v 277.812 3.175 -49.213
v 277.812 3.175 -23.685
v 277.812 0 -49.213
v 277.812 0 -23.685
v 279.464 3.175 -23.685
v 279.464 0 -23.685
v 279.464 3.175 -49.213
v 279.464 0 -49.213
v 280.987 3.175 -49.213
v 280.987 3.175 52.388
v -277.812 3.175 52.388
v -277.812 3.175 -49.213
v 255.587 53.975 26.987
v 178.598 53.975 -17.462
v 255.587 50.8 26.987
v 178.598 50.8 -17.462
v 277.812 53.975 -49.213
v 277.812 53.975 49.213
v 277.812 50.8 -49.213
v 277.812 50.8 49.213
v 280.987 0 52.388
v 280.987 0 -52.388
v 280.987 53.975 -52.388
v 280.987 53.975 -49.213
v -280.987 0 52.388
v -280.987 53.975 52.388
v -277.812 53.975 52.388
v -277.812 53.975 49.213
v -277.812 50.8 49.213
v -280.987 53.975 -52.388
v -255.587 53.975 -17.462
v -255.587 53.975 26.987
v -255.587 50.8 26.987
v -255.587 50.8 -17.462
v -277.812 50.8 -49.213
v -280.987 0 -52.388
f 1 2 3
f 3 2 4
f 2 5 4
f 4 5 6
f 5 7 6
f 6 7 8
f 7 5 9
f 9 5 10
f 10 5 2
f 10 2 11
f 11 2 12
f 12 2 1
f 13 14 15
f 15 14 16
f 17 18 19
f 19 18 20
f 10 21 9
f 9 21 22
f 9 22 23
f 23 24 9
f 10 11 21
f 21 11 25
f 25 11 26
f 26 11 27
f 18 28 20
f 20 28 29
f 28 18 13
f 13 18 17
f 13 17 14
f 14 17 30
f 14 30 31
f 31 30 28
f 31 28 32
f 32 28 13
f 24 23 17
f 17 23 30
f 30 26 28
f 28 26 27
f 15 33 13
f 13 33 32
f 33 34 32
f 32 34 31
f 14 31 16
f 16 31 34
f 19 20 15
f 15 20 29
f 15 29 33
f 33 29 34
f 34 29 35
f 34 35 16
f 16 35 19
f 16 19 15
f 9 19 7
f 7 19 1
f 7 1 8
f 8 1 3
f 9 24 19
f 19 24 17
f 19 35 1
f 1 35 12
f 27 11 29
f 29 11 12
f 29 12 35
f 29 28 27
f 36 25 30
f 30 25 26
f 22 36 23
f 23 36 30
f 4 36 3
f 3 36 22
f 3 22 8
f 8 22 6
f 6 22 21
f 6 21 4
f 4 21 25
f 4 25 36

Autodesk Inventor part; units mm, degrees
ref_plane "YZ Plane" through (0, 0, 0) normal (1, 0, 0) x (0, 1, 0)
ref_plane "XZ Plane" through (0, 0, 0) normal (0, 1, 0) x (-1, 0, 0)
ref_plane "XY Plane" through (0, 0, 0) normal (0, 0, 1) x (1, 0, 0)
sketch "Sketch1" plane through (0, 0, 0) normal (0, 1, 0) x (-1, 0, 0)
  line L0 (-280.9875, -52.3875) -> (-280.9875, 52.3875)
  line L1 (-280.9875, 52.3875) -> (280.9875, 52.3875)
  line L2 (280.9875, 52.3875) -> (280.9875, -52.3875)
  line L3 (280.9875, -52.3875) -> (-280.9875, -52.3875)
  line L4 (-280.9875, -52.3875) -> (280.9875, 52.3875) construction
  line L5 (-280.9875, 52.3875) -> (280.9875, -52.3875) construction
  line L6 (0, -52.3875) -> (0, -17.4625) construction
  line L7 (-277.8125, -49.2125) -> (277.8125, -49.2125)
  line L8 (277.8125, -49.2125) -> (277.8125, 49.2125)
  line L9 (277.8125, 49.2125) -> (-277.8125, 49.2125) construction
  line L10 (-277.8125, 49.2125) -> (-277.8125, -49.2125)
  line L11 (-277.8125, -49.2125) -> (277.8125, 49.2125) construction
  line L12 (277.8125, -49.2125) -> (-277.8125, 49.2125) construction
  line L13 (277.8125, 49.2125) -> (277.8125, 52.3875)
  line L14 (-277.8125, 49.2125) -> (-277.8125, 52.3875)
  point P0 (0, 0)
  dimension "d0" = 104.775
  dimension "d1" = 561.975
  dimension "d2" = 34.925
  dimension "d3" = 555.625
  dimension "d4" = 98.425
extrude "Extrusion1" add sketch "Sketch1" along normal blind 3.175 contours L1 L13 L8 L7 L10 L14
extrude "Extrusion2" add sketch "Sketch1" along normal blind 50.8 contours L0 L1 L14 L10 L7 L8 L13 L2 L3
sketch "Sketch2" plane through (0, 50.8, 0) normal (0, 1, 0) x (1, 0, 0)
  line L0 (-280.9875, -52.3875) -> (-277.8125, -52.3875) projected
  line L1 (-280.9875, -52.3875) -> (255.5875, -52.3875)
  line L2 (280.9875, -52.3875) -> (280.9875, -26.9875)
  line L3 (-280.9875, -26.9875) -> (-280.9875, -52.3875)
  line L4 (-280.9875, 52.3875) -> (-280.9875, -52.3875) projected
  line L5 (-280.9875, 52.3875) -> (255.5875, 52.3875)
  line L6 (280.9875, 52.3875) -> (280.9875, 17.4625)
  line L7 (-280.9875, 17.4625) -> (-280.9875, 52.3875)
  line L8 (-280.9875, 52.3875) -> (-255.5875, 52.3875)
  line L9 (-255.5875, -52.3875) -> (-280.9875, -52.3875)
  line L10 (-280.9875, -52.3875) -> (-280.9875, -26.9875)
  line L11 (-277.8125, -52.3875) -> (277.8125, -52.3875) projected
  line L12 (280.9875, 52.3875) -> (255.5875, 52.3875)
  line L13 (255.5875, -52.3875) -> (280.9875, -52.3875)
  line L14 (280.9875, -52.3875) -> (280.9875, 17.4625)
  line L15 (255.5875, 17.4625) -> (255.5875, -26.9875)
  line L16 (255.5875, 17.4625) -> (-255.5875, 17.4625)
  line L17 (255.5875, 52.3875) -> (280.9875, 52.3875)
  line L18 (280.9875, 17.4625) -> (280.9875, 52.3875)
  line L19 (255.5875, -26.9875) -> (-255.5875, -26.9875)
  line L20 (255.5875, -52.3875) -> (280.9875, -52.3875)
  line L21 (-255.5875, 17.4625) -> (-255.5875, -26.9875)
  line L22 (-280.9875, 17.4625) -> (-280.9875, 52.3875)
  line L23 (-280.9875, -26.9875) -> (-280.9875, 17.4625)
  line L24 (-277.8125, -52.3875) -> (-277.8125, 49.2125) construction
  line L25 (-277.8125, -52.3875) -> (-277.8125, -49.2125) construction
  line L26 (-277.8125, -49.2125) -> (277.8125, -49.2125)
  line L27 (-277.8125, -49.2125) -> (-277.8125, -52.3875)
  line L28 (277.8125, -49.2125) -> (277.8125, -52.3875)
  point P0 (0, 0)
  dimension "d9" = 561.975
  dimension "d10" = 25.4
  dimension "d11" = 561.975
  dimension "d12" = 34.925
  dimension "d13" = 25.4
  dimension "d14" = 104.775
  dimension "d15" = 25.4
  dimension "d18" = 3.175
  dimension "d19" = 555.625
extrude "Extrusion3" add sketch "Sketch2" along normal blind 3.175
sketch "Sketch3" plane through (0, 53.975, 0) normal (0, 1, 0) x (1, 0, 0)
  line L0 (-277.8125, -52.3875) -> (-277.8125, 49.2125) projected
  line L1 (-277.8125, -52.3875) -> (277.8125, -52.3875)
  line L2 (277.8125, -52.3875) -> (277.8125, -49.2125)
  line L3 (277.8125, -49.2125) -> (-277.8125, -49.2125)
  line L4 (-277.8125, -49.2125) -> (-277.8125, -52.3875)
  point P0 (0, 0)
  dimension "d20" = 555.625
  dimension "d21" = 3.175
extrude "Extrusion4" cut sketch "Sketch3" against normal blind 3.175
sketch "Sketch4" plane through (280.9875, 0, 52.3875) normal (1, 0, 0) x (0, 0, -1)
  line L0 (3.175, 53.975) -> (0, 53.975) projected
  line L1 (0, 53.975) -> (104.775, 53.975)
  line L2 (104.775, 53.975) -> (104.775, 0)
  line L3 (0, 0) -> (0, 53.975)
  line L4 (52.3875, 0) -> (52.3875, 3.175) construction
  line L5 (0, 3.175) -> (101.6, 3.175) construction
  line L6 (0, 3.175) -> (104.775, 3.175)
  line L7 (104.775, 0) -> (104.775, 53.975) projected
extrude "Extrusion5" cut sketch "Sketch4" against normal blind 3.175
sketch "Sketch5" plane through (0, 53.975, 0) normal (0, 1, 0) x (1, 0, 0)
  line L0 (255.5875, -26.9875) -> (255.5875, 17.4625) projected
  line L1 (255.5875, -26.9875) -> (178.5978, 17.4625)
  line L2 (255.5875, 17.4625) -> (-255.5875, 17.4625) projected
  line L3 (255.5875, -26.9875) -> (344.4875, -26.9875) construction
  line L4 (178.5978, 17.4625) -> (255.5875, 17.4625)
  point P0 (0, 0)
  dimension "d26" = 150
extrude "Extrusion6" add sketch "Sketch5" against normal blind 3.175
sketch "Sketch6" plane through (277.8125, 0, 52.3875) normal (1, 0, 0) x (0, 0, -1)
  line L0 (104.775, 0) -> (104.775, 53.975) projected
  line L1 (104.775, 50.8) -> (104.775, 53.975)
  line L2 (104.775, 53.975) -> (101.6, 53.975)
  line L3 (101.6, 3.175) -> (104.775, 3.175)
  line L4 (104.775, 3.175) -> (104.775, 50.8)
  line L5 (101.6, 50.8) -> (101.6, 3.175)
  line L6 (101.6, 50.8) -> (101.6, 53.975)
  point P0 (52.3875, 0)
  point P1 (3.175, 50.8)
extrude "Extrusion7" add sketch "Sketch6" along normal blind 3.175
sketch "Sketch8" plane through (0, 3.175, 0) normal (0, 1, 0) x (1, 0, 0)
  line L0 (277.8125, -49.2125) -> (277.8125, 49.2125) projected
  line L1 (277.8125, 49.2125) -> (279.4635, 49.2125)
  line L2 (279.4635, 49.2125) -> (279.4635, 23.6855)
  line L3 (279.4635, 23.6855) -> (277.8125, 23.6855)
  line L4 (277.8125, 23.6855) -> (277.8125, 49.2125)
  point P0 (0, 0)
  dimension "d36" = 1.651
  dimension "d37" = 25.527
extrude "Extrusion9" cut sketch "Sketch8" against normal blind 3.175
properties part number "Wire Housing No Support Struct vglue"
